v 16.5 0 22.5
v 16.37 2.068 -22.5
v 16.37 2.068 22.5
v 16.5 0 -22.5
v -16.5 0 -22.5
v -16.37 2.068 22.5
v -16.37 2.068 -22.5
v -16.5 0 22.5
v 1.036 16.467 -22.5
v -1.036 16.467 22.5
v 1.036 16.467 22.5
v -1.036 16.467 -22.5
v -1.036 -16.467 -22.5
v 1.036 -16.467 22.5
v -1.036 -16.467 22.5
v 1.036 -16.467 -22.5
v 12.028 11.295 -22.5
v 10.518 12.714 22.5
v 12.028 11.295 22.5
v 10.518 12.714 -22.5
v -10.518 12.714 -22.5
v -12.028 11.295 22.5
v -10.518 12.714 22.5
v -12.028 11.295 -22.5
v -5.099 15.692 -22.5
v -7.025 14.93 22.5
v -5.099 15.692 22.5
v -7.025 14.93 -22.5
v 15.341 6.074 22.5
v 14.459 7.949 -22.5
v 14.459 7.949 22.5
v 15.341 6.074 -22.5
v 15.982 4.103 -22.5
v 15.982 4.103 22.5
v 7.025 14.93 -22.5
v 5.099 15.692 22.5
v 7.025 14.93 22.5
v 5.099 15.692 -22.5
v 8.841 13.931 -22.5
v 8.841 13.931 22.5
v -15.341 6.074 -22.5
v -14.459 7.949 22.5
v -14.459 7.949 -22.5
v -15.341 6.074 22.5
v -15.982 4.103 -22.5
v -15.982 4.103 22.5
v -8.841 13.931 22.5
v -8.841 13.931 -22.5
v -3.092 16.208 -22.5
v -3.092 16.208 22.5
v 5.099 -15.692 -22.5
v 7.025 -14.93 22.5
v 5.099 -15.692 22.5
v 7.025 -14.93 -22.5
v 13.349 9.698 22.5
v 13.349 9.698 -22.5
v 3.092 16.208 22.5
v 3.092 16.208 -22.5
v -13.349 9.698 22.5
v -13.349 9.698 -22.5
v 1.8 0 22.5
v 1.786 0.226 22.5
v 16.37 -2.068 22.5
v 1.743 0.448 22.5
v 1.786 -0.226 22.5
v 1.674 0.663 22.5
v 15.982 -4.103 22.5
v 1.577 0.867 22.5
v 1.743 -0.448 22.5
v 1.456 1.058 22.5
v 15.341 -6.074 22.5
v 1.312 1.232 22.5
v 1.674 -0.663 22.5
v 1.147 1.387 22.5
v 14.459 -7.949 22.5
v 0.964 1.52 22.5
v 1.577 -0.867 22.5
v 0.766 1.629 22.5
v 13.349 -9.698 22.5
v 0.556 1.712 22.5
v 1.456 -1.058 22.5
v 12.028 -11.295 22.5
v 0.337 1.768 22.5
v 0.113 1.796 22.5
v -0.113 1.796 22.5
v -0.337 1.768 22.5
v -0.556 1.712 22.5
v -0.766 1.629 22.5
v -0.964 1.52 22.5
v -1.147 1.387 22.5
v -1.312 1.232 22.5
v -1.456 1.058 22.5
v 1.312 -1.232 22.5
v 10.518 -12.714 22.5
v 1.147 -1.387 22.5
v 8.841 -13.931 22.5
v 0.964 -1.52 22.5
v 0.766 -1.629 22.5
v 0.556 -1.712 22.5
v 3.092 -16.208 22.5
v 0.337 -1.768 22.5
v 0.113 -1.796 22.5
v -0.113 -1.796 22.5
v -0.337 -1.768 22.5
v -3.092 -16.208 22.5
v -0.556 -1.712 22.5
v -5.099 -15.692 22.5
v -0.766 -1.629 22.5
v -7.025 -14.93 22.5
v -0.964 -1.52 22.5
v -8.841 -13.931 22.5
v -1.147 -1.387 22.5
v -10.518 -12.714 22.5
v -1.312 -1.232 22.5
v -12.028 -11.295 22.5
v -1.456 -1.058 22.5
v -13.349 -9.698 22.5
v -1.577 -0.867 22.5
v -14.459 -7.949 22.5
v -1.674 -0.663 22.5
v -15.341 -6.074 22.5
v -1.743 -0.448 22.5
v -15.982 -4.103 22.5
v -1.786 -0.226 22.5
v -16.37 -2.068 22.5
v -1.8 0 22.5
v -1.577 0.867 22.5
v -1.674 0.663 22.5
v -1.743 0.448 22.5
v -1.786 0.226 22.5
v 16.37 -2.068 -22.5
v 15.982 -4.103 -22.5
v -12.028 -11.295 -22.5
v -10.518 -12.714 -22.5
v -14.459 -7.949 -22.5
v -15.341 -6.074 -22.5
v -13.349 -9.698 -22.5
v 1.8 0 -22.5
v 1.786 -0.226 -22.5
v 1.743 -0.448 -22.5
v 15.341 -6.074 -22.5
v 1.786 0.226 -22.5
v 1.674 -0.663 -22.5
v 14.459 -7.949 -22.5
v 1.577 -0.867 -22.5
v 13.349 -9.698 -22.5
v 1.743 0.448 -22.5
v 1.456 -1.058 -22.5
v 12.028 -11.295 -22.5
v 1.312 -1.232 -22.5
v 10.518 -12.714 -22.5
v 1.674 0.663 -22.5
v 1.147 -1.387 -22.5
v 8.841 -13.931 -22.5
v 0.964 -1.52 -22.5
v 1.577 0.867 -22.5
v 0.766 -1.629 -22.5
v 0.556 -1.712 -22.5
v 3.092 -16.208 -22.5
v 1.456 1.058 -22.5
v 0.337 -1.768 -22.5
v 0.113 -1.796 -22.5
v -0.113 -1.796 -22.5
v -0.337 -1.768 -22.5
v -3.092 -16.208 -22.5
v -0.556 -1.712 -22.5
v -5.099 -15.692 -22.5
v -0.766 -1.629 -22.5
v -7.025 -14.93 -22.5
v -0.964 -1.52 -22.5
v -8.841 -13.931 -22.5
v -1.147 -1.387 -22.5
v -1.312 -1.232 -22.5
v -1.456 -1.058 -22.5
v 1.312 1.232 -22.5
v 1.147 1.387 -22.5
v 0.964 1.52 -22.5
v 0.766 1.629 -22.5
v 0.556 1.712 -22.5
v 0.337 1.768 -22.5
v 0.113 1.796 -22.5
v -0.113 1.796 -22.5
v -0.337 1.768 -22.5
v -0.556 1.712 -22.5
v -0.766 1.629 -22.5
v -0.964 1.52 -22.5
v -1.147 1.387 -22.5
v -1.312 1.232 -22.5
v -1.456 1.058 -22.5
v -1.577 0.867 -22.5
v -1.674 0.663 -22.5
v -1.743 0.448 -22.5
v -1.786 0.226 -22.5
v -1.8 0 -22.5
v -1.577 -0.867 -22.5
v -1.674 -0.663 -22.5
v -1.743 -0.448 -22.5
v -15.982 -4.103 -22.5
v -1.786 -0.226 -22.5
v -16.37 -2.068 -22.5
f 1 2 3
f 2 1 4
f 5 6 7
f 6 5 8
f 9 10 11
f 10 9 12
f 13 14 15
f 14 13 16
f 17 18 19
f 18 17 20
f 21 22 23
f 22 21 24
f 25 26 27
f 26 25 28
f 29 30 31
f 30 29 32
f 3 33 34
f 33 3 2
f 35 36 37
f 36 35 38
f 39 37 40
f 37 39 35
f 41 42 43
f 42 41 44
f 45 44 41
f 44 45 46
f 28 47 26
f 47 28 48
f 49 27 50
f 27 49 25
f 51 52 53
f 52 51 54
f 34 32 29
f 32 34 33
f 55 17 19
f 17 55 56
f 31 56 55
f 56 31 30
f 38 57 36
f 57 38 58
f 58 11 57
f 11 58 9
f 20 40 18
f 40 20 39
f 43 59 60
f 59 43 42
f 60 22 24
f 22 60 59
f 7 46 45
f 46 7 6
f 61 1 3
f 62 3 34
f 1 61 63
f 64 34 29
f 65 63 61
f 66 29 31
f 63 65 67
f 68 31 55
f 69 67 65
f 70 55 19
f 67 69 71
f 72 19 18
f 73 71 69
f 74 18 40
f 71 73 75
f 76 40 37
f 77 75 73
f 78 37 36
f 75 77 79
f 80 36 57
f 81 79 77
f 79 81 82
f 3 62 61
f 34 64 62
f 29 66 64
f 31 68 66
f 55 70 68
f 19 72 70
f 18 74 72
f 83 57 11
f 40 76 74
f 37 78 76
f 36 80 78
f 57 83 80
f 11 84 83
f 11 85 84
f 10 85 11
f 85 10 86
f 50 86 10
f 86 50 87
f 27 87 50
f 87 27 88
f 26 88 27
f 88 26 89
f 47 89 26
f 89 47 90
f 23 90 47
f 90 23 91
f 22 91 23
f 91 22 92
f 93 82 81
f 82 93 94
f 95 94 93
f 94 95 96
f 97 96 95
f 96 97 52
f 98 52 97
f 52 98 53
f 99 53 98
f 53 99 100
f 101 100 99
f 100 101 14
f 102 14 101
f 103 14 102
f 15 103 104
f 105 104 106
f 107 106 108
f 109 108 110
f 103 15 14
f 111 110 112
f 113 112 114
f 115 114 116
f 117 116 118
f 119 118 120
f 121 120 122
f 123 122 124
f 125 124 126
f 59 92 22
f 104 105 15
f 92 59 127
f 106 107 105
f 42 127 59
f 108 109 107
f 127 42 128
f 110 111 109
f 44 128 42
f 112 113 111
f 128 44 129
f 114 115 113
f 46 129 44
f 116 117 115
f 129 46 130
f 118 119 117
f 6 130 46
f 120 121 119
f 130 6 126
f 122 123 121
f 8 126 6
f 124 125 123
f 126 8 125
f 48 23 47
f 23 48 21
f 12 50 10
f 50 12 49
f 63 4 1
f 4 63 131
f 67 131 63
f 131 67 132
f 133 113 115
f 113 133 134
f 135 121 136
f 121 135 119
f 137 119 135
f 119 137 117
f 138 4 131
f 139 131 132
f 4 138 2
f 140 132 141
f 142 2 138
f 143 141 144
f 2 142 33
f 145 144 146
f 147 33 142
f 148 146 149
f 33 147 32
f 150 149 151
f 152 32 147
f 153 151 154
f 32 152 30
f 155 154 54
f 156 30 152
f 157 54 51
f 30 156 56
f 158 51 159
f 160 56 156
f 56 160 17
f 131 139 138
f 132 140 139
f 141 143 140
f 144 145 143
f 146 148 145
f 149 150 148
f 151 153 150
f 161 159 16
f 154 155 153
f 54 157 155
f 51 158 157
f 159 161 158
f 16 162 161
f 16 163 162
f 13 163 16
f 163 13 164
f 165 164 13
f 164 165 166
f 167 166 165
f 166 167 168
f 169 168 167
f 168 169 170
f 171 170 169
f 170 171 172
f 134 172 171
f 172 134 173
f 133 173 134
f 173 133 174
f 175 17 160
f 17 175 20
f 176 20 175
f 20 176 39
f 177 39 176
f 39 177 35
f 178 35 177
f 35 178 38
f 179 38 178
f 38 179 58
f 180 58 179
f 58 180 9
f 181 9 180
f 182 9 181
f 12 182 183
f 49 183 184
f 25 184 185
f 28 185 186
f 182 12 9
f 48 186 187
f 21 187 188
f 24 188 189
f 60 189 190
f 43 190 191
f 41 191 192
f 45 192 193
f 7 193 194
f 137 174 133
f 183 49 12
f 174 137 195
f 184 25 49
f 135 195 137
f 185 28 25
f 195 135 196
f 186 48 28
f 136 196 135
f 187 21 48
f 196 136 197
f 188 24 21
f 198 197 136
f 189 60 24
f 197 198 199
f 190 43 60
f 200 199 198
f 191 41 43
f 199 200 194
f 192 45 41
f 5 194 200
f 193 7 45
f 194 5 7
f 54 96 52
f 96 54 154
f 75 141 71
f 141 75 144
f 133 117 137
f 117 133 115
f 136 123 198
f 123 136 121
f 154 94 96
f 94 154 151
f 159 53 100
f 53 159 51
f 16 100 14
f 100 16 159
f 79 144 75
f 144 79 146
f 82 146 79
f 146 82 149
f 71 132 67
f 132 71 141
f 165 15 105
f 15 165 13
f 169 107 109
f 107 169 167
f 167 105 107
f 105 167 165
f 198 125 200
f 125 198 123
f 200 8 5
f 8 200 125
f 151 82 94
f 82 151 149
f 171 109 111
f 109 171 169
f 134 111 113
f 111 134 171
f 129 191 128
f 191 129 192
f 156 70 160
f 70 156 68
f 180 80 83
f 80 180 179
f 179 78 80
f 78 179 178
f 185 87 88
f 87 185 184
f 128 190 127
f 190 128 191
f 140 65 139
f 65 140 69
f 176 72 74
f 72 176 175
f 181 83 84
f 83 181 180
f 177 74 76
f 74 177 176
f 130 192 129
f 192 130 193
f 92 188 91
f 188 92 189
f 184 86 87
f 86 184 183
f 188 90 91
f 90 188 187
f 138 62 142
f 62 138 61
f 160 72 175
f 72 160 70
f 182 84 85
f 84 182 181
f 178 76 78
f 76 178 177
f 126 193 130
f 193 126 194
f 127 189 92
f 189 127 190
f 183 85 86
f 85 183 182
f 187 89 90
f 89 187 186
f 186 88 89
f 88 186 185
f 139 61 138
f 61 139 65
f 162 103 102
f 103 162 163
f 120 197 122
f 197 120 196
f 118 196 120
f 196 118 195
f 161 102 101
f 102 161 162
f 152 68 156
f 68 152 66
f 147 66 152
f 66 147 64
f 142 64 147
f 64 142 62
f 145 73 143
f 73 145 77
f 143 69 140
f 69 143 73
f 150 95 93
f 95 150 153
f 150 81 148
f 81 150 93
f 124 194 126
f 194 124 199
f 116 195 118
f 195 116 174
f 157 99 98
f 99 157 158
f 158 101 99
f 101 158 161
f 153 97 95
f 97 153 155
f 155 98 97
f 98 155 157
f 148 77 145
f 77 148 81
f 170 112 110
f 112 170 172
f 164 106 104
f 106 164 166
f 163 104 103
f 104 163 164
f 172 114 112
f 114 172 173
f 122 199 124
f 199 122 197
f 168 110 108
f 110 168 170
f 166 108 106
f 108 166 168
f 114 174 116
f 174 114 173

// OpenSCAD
$fn = 50;


difference() {
	union() {
		translate(v = [0, 0, -22.5000000000]) {
			cylinder(h = 45, r = 16.5000000000);
		}
	}
	union() {
		translate(v = [0, 0, -100.0000000000]) {
			cylinder(h = 200, r = 1.8000000000);
		}
	}
}
